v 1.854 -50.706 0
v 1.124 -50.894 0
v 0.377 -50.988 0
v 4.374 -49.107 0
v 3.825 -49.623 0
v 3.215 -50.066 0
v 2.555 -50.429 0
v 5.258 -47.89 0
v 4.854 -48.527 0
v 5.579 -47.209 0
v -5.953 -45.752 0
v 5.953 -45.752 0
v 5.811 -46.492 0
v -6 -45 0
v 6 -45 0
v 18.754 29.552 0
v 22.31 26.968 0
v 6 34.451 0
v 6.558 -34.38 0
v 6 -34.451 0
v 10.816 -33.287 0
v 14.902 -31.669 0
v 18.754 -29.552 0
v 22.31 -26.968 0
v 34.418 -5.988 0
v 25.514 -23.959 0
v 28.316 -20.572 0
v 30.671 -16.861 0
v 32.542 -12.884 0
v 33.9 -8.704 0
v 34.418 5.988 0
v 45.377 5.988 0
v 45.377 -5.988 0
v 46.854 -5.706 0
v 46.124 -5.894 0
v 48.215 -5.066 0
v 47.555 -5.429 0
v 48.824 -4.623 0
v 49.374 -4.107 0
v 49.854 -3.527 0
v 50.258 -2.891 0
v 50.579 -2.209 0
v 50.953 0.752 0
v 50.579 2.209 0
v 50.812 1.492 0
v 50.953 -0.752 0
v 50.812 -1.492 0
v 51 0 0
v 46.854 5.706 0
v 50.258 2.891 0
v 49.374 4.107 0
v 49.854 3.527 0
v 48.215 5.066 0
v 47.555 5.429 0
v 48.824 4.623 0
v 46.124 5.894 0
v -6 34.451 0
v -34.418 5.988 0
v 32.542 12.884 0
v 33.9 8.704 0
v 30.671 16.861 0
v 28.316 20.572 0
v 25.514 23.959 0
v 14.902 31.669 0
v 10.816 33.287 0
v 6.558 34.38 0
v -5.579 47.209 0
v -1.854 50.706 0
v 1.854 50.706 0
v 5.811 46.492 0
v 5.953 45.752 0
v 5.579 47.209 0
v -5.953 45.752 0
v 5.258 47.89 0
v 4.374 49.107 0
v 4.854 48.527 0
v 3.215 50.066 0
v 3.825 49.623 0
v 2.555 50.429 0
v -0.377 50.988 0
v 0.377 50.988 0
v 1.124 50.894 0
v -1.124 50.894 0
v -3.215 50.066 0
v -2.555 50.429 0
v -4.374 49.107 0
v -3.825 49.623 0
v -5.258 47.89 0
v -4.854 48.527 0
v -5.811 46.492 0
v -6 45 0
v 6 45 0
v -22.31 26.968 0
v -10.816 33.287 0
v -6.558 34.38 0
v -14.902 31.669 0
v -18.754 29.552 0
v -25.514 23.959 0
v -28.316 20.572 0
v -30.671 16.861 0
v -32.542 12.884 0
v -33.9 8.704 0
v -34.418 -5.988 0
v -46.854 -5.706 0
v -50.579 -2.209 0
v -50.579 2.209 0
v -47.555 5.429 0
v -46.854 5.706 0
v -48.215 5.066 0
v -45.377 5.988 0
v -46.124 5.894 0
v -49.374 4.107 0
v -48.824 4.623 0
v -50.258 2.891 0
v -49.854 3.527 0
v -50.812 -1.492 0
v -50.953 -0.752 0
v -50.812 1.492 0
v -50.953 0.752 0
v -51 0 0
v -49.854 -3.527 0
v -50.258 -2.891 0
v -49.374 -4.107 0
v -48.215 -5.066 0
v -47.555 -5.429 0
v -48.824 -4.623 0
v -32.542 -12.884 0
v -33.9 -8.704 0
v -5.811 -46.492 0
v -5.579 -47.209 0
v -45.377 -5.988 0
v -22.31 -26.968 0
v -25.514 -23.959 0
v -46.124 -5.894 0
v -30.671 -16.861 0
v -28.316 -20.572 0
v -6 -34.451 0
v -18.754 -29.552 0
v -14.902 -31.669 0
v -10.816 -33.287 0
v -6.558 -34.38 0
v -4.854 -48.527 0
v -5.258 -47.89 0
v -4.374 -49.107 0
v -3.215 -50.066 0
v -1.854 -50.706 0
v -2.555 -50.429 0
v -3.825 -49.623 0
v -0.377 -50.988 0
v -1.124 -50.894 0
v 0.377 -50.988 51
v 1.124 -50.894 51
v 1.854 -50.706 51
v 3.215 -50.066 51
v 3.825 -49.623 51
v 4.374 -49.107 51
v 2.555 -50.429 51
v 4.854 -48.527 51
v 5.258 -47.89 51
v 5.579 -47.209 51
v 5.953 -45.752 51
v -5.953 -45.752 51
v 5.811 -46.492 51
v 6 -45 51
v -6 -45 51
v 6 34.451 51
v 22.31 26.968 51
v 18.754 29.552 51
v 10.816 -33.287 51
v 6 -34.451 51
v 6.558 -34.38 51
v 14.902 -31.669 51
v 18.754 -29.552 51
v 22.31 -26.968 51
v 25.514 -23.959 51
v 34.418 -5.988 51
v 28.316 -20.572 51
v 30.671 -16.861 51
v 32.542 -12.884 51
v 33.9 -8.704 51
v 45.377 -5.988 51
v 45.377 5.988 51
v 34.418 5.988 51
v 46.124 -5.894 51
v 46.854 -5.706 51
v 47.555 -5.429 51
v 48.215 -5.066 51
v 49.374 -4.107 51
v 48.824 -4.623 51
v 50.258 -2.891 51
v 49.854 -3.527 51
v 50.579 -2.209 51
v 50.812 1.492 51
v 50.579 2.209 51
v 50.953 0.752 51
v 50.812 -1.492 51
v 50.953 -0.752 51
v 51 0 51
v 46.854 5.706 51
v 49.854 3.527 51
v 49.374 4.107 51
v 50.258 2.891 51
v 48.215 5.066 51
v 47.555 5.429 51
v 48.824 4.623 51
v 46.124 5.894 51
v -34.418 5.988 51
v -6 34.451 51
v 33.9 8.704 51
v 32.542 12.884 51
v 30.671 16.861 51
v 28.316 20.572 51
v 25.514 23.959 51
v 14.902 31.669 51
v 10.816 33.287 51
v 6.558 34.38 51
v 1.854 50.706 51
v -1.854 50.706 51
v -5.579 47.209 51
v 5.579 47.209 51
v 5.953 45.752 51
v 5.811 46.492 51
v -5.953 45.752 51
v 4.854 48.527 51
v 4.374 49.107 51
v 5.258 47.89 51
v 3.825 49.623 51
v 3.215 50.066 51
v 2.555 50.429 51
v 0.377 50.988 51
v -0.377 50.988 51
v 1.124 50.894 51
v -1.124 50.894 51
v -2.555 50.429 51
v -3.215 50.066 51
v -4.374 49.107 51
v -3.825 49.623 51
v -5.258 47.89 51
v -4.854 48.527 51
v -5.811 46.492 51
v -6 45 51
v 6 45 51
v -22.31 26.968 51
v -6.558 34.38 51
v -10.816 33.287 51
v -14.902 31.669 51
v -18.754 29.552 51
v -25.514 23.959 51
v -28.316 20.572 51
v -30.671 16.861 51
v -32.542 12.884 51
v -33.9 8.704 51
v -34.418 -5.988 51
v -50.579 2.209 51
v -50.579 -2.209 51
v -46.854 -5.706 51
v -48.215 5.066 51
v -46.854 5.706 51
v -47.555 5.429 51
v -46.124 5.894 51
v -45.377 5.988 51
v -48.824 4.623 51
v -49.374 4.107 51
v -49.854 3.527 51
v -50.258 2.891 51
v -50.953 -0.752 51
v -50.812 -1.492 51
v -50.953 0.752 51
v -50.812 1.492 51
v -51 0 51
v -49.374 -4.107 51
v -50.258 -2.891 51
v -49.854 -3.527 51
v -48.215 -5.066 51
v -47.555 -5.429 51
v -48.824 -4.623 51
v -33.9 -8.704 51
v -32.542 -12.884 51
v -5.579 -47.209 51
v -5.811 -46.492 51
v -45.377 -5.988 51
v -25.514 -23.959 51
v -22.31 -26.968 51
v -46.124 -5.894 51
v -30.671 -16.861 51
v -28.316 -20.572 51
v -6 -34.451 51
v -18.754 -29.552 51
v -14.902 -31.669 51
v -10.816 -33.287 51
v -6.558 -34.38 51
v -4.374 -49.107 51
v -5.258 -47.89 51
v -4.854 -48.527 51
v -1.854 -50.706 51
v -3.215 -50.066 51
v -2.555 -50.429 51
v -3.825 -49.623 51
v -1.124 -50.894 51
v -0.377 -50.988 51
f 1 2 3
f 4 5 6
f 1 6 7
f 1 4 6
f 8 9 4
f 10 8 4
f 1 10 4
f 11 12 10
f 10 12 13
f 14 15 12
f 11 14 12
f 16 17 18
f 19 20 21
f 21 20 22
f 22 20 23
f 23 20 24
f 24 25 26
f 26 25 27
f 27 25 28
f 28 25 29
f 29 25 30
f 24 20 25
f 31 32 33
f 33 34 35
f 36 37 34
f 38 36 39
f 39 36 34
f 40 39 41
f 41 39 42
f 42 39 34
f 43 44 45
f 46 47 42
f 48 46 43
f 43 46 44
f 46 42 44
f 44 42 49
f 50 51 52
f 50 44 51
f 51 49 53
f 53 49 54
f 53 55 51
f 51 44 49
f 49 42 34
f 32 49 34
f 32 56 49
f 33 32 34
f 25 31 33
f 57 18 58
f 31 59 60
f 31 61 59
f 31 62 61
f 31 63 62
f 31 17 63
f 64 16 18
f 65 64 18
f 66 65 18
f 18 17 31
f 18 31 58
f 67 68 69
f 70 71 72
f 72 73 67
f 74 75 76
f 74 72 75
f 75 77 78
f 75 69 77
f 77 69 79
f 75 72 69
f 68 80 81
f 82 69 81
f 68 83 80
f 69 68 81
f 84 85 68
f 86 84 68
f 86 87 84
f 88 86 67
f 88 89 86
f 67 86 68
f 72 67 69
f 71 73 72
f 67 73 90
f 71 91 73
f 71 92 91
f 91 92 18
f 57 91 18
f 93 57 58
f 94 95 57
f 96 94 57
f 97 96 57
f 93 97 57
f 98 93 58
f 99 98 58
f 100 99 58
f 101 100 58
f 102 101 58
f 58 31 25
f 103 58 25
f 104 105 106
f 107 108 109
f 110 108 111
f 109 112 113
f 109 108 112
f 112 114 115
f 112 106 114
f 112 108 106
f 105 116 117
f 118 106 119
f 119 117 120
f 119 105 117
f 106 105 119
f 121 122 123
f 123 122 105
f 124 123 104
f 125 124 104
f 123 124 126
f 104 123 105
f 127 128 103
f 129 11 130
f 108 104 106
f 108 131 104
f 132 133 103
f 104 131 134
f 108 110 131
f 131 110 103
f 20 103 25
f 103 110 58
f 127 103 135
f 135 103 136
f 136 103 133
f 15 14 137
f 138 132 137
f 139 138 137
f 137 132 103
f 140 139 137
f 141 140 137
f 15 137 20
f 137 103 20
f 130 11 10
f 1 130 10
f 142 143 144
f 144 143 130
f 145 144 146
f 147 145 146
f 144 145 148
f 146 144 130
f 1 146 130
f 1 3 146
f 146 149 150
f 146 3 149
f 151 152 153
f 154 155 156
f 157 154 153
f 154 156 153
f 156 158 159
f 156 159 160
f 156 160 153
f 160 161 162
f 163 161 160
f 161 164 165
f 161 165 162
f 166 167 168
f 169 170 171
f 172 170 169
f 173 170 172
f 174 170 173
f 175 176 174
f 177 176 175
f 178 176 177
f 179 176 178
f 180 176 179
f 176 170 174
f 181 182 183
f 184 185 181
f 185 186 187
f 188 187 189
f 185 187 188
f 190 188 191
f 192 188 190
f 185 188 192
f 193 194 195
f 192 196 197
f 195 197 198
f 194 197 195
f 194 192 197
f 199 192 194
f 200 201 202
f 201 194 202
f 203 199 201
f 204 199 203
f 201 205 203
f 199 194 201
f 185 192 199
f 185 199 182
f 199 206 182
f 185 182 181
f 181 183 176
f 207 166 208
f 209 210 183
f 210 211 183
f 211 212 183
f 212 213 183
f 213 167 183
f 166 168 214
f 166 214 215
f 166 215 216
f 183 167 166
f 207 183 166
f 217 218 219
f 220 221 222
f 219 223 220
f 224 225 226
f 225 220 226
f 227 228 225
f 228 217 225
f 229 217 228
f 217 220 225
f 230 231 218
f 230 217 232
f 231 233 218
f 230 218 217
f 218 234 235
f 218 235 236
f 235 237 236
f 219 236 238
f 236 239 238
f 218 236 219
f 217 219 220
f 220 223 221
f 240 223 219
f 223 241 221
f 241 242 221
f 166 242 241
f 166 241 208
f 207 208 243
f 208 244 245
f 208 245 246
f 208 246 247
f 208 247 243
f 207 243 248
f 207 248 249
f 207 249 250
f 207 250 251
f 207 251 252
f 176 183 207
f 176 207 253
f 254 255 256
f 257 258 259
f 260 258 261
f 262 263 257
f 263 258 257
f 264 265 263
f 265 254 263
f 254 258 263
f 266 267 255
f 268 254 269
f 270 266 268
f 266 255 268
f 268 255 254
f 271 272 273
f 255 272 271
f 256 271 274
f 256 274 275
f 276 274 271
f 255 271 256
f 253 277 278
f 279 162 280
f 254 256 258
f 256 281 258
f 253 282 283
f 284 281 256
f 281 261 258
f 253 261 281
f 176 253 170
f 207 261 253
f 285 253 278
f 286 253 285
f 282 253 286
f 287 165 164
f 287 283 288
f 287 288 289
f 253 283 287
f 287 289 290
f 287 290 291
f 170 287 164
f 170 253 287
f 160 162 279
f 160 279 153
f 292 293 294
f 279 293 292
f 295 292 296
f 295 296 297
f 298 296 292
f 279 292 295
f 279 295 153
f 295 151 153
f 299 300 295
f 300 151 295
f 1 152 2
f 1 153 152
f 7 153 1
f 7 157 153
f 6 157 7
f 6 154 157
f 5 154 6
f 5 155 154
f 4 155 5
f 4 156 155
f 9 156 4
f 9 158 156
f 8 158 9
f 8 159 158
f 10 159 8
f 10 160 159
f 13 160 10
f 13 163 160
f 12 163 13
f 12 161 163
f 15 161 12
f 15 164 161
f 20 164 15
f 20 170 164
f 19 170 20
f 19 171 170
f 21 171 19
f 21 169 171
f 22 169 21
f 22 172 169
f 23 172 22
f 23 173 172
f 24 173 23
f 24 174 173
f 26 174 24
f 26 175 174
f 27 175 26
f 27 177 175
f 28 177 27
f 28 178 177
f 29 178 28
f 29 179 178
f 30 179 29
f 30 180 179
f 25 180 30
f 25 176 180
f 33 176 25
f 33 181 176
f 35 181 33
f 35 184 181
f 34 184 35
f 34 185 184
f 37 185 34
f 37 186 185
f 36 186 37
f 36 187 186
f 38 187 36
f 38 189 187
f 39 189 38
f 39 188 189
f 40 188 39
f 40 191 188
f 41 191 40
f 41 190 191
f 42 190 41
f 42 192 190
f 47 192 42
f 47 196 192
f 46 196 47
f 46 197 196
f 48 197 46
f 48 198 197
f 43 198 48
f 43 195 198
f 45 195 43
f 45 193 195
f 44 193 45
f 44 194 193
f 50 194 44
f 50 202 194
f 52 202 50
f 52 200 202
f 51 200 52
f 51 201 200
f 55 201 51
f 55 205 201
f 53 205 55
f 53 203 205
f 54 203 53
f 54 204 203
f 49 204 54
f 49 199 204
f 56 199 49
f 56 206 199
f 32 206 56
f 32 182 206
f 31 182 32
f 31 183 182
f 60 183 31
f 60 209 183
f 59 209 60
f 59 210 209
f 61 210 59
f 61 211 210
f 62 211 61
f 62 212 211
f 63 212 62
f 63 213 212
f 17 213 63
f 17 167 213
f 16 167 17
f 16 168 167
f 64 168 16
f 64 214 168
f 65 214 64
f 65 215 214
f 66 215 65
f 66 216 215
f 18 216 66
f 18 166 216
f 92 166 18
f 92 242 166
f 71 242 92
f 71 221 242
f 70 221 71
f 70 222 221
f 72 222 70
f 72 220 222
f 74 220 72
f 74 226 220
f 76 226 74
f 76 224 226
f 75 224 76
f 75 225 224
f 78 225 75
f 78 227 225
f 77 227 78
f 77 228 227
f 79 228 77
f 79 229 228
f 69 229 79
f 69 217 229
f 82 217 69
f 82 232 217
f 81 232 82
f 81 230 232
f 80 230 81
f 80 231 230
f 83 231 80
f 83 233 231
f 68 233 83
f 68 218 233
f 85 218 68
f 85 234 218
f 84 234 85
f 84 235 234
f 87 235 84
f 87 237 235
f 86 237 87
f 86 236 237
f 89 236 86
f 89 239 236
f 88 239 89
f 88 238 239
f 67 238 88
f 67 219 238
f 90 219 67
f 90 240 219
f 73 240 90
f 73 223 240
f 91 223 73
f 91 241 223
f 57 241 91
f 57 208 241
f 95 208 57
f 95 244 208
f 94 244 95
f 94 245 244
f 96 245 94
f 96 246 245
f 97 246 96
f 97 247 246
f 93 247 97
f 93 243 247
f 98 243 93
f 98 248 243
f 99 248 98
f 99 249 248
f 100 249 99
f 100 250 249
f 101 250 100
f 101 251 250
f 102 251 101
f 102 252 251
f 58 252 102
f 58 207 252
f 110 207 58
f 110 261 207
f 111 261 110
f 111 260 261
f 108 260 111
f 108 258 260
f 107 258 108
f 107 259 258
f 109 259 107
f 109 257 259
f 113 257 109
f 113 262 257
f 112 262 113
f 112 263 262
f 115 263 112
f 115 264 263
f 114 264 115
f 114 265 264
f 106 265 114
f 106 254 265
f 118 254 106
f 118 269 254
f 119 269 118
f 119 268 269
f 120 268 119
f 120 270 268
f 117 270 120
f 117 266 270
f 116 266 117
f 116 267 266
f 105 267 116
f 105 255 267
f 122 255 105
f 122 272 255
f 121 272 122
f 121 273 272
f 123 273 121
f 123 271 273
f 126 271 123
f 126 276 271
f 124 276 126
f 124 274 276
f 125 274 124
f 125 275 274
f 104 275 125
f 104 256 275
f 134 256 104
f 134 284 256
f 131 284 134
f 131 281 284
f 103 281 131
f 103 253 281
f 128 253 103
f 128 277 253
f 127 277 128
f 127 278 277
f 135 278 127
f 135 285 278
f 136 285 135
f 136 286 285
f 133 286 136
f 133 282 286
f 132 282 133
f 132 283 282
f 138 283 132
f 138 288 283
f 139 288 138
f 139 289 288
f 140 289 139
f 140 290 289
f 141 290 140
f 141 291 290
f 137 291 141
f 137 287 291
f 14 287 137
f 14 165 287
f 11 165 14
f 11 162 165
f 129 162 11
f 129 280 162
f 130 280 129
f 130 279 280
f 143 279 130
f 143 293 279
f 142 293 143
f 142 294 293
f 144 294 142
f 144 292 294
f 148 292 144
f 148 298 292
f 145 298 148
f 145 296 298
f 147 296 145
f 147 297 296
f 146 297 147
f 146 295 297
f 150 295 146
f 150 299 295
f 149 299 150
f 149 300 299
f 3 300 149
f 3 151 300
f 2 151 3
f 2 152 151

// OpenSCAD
$fn = 50;

thickness_mm = 51;
big_mm = 35;
small_mm = 6;
small_radius = big_mm + 10;
bolts = 4;


linear_extrude(thickness_mm){
	
	for(i = [0:bolts]){
		hull(){
			circle(small_mm);
			translate([small_radius * sin(i*360/bolts), small_radius * cos(i*360/bolts), 0]){
				circle(small_mm);
			}
		}
	}
	circle(big_mm);
	
}
